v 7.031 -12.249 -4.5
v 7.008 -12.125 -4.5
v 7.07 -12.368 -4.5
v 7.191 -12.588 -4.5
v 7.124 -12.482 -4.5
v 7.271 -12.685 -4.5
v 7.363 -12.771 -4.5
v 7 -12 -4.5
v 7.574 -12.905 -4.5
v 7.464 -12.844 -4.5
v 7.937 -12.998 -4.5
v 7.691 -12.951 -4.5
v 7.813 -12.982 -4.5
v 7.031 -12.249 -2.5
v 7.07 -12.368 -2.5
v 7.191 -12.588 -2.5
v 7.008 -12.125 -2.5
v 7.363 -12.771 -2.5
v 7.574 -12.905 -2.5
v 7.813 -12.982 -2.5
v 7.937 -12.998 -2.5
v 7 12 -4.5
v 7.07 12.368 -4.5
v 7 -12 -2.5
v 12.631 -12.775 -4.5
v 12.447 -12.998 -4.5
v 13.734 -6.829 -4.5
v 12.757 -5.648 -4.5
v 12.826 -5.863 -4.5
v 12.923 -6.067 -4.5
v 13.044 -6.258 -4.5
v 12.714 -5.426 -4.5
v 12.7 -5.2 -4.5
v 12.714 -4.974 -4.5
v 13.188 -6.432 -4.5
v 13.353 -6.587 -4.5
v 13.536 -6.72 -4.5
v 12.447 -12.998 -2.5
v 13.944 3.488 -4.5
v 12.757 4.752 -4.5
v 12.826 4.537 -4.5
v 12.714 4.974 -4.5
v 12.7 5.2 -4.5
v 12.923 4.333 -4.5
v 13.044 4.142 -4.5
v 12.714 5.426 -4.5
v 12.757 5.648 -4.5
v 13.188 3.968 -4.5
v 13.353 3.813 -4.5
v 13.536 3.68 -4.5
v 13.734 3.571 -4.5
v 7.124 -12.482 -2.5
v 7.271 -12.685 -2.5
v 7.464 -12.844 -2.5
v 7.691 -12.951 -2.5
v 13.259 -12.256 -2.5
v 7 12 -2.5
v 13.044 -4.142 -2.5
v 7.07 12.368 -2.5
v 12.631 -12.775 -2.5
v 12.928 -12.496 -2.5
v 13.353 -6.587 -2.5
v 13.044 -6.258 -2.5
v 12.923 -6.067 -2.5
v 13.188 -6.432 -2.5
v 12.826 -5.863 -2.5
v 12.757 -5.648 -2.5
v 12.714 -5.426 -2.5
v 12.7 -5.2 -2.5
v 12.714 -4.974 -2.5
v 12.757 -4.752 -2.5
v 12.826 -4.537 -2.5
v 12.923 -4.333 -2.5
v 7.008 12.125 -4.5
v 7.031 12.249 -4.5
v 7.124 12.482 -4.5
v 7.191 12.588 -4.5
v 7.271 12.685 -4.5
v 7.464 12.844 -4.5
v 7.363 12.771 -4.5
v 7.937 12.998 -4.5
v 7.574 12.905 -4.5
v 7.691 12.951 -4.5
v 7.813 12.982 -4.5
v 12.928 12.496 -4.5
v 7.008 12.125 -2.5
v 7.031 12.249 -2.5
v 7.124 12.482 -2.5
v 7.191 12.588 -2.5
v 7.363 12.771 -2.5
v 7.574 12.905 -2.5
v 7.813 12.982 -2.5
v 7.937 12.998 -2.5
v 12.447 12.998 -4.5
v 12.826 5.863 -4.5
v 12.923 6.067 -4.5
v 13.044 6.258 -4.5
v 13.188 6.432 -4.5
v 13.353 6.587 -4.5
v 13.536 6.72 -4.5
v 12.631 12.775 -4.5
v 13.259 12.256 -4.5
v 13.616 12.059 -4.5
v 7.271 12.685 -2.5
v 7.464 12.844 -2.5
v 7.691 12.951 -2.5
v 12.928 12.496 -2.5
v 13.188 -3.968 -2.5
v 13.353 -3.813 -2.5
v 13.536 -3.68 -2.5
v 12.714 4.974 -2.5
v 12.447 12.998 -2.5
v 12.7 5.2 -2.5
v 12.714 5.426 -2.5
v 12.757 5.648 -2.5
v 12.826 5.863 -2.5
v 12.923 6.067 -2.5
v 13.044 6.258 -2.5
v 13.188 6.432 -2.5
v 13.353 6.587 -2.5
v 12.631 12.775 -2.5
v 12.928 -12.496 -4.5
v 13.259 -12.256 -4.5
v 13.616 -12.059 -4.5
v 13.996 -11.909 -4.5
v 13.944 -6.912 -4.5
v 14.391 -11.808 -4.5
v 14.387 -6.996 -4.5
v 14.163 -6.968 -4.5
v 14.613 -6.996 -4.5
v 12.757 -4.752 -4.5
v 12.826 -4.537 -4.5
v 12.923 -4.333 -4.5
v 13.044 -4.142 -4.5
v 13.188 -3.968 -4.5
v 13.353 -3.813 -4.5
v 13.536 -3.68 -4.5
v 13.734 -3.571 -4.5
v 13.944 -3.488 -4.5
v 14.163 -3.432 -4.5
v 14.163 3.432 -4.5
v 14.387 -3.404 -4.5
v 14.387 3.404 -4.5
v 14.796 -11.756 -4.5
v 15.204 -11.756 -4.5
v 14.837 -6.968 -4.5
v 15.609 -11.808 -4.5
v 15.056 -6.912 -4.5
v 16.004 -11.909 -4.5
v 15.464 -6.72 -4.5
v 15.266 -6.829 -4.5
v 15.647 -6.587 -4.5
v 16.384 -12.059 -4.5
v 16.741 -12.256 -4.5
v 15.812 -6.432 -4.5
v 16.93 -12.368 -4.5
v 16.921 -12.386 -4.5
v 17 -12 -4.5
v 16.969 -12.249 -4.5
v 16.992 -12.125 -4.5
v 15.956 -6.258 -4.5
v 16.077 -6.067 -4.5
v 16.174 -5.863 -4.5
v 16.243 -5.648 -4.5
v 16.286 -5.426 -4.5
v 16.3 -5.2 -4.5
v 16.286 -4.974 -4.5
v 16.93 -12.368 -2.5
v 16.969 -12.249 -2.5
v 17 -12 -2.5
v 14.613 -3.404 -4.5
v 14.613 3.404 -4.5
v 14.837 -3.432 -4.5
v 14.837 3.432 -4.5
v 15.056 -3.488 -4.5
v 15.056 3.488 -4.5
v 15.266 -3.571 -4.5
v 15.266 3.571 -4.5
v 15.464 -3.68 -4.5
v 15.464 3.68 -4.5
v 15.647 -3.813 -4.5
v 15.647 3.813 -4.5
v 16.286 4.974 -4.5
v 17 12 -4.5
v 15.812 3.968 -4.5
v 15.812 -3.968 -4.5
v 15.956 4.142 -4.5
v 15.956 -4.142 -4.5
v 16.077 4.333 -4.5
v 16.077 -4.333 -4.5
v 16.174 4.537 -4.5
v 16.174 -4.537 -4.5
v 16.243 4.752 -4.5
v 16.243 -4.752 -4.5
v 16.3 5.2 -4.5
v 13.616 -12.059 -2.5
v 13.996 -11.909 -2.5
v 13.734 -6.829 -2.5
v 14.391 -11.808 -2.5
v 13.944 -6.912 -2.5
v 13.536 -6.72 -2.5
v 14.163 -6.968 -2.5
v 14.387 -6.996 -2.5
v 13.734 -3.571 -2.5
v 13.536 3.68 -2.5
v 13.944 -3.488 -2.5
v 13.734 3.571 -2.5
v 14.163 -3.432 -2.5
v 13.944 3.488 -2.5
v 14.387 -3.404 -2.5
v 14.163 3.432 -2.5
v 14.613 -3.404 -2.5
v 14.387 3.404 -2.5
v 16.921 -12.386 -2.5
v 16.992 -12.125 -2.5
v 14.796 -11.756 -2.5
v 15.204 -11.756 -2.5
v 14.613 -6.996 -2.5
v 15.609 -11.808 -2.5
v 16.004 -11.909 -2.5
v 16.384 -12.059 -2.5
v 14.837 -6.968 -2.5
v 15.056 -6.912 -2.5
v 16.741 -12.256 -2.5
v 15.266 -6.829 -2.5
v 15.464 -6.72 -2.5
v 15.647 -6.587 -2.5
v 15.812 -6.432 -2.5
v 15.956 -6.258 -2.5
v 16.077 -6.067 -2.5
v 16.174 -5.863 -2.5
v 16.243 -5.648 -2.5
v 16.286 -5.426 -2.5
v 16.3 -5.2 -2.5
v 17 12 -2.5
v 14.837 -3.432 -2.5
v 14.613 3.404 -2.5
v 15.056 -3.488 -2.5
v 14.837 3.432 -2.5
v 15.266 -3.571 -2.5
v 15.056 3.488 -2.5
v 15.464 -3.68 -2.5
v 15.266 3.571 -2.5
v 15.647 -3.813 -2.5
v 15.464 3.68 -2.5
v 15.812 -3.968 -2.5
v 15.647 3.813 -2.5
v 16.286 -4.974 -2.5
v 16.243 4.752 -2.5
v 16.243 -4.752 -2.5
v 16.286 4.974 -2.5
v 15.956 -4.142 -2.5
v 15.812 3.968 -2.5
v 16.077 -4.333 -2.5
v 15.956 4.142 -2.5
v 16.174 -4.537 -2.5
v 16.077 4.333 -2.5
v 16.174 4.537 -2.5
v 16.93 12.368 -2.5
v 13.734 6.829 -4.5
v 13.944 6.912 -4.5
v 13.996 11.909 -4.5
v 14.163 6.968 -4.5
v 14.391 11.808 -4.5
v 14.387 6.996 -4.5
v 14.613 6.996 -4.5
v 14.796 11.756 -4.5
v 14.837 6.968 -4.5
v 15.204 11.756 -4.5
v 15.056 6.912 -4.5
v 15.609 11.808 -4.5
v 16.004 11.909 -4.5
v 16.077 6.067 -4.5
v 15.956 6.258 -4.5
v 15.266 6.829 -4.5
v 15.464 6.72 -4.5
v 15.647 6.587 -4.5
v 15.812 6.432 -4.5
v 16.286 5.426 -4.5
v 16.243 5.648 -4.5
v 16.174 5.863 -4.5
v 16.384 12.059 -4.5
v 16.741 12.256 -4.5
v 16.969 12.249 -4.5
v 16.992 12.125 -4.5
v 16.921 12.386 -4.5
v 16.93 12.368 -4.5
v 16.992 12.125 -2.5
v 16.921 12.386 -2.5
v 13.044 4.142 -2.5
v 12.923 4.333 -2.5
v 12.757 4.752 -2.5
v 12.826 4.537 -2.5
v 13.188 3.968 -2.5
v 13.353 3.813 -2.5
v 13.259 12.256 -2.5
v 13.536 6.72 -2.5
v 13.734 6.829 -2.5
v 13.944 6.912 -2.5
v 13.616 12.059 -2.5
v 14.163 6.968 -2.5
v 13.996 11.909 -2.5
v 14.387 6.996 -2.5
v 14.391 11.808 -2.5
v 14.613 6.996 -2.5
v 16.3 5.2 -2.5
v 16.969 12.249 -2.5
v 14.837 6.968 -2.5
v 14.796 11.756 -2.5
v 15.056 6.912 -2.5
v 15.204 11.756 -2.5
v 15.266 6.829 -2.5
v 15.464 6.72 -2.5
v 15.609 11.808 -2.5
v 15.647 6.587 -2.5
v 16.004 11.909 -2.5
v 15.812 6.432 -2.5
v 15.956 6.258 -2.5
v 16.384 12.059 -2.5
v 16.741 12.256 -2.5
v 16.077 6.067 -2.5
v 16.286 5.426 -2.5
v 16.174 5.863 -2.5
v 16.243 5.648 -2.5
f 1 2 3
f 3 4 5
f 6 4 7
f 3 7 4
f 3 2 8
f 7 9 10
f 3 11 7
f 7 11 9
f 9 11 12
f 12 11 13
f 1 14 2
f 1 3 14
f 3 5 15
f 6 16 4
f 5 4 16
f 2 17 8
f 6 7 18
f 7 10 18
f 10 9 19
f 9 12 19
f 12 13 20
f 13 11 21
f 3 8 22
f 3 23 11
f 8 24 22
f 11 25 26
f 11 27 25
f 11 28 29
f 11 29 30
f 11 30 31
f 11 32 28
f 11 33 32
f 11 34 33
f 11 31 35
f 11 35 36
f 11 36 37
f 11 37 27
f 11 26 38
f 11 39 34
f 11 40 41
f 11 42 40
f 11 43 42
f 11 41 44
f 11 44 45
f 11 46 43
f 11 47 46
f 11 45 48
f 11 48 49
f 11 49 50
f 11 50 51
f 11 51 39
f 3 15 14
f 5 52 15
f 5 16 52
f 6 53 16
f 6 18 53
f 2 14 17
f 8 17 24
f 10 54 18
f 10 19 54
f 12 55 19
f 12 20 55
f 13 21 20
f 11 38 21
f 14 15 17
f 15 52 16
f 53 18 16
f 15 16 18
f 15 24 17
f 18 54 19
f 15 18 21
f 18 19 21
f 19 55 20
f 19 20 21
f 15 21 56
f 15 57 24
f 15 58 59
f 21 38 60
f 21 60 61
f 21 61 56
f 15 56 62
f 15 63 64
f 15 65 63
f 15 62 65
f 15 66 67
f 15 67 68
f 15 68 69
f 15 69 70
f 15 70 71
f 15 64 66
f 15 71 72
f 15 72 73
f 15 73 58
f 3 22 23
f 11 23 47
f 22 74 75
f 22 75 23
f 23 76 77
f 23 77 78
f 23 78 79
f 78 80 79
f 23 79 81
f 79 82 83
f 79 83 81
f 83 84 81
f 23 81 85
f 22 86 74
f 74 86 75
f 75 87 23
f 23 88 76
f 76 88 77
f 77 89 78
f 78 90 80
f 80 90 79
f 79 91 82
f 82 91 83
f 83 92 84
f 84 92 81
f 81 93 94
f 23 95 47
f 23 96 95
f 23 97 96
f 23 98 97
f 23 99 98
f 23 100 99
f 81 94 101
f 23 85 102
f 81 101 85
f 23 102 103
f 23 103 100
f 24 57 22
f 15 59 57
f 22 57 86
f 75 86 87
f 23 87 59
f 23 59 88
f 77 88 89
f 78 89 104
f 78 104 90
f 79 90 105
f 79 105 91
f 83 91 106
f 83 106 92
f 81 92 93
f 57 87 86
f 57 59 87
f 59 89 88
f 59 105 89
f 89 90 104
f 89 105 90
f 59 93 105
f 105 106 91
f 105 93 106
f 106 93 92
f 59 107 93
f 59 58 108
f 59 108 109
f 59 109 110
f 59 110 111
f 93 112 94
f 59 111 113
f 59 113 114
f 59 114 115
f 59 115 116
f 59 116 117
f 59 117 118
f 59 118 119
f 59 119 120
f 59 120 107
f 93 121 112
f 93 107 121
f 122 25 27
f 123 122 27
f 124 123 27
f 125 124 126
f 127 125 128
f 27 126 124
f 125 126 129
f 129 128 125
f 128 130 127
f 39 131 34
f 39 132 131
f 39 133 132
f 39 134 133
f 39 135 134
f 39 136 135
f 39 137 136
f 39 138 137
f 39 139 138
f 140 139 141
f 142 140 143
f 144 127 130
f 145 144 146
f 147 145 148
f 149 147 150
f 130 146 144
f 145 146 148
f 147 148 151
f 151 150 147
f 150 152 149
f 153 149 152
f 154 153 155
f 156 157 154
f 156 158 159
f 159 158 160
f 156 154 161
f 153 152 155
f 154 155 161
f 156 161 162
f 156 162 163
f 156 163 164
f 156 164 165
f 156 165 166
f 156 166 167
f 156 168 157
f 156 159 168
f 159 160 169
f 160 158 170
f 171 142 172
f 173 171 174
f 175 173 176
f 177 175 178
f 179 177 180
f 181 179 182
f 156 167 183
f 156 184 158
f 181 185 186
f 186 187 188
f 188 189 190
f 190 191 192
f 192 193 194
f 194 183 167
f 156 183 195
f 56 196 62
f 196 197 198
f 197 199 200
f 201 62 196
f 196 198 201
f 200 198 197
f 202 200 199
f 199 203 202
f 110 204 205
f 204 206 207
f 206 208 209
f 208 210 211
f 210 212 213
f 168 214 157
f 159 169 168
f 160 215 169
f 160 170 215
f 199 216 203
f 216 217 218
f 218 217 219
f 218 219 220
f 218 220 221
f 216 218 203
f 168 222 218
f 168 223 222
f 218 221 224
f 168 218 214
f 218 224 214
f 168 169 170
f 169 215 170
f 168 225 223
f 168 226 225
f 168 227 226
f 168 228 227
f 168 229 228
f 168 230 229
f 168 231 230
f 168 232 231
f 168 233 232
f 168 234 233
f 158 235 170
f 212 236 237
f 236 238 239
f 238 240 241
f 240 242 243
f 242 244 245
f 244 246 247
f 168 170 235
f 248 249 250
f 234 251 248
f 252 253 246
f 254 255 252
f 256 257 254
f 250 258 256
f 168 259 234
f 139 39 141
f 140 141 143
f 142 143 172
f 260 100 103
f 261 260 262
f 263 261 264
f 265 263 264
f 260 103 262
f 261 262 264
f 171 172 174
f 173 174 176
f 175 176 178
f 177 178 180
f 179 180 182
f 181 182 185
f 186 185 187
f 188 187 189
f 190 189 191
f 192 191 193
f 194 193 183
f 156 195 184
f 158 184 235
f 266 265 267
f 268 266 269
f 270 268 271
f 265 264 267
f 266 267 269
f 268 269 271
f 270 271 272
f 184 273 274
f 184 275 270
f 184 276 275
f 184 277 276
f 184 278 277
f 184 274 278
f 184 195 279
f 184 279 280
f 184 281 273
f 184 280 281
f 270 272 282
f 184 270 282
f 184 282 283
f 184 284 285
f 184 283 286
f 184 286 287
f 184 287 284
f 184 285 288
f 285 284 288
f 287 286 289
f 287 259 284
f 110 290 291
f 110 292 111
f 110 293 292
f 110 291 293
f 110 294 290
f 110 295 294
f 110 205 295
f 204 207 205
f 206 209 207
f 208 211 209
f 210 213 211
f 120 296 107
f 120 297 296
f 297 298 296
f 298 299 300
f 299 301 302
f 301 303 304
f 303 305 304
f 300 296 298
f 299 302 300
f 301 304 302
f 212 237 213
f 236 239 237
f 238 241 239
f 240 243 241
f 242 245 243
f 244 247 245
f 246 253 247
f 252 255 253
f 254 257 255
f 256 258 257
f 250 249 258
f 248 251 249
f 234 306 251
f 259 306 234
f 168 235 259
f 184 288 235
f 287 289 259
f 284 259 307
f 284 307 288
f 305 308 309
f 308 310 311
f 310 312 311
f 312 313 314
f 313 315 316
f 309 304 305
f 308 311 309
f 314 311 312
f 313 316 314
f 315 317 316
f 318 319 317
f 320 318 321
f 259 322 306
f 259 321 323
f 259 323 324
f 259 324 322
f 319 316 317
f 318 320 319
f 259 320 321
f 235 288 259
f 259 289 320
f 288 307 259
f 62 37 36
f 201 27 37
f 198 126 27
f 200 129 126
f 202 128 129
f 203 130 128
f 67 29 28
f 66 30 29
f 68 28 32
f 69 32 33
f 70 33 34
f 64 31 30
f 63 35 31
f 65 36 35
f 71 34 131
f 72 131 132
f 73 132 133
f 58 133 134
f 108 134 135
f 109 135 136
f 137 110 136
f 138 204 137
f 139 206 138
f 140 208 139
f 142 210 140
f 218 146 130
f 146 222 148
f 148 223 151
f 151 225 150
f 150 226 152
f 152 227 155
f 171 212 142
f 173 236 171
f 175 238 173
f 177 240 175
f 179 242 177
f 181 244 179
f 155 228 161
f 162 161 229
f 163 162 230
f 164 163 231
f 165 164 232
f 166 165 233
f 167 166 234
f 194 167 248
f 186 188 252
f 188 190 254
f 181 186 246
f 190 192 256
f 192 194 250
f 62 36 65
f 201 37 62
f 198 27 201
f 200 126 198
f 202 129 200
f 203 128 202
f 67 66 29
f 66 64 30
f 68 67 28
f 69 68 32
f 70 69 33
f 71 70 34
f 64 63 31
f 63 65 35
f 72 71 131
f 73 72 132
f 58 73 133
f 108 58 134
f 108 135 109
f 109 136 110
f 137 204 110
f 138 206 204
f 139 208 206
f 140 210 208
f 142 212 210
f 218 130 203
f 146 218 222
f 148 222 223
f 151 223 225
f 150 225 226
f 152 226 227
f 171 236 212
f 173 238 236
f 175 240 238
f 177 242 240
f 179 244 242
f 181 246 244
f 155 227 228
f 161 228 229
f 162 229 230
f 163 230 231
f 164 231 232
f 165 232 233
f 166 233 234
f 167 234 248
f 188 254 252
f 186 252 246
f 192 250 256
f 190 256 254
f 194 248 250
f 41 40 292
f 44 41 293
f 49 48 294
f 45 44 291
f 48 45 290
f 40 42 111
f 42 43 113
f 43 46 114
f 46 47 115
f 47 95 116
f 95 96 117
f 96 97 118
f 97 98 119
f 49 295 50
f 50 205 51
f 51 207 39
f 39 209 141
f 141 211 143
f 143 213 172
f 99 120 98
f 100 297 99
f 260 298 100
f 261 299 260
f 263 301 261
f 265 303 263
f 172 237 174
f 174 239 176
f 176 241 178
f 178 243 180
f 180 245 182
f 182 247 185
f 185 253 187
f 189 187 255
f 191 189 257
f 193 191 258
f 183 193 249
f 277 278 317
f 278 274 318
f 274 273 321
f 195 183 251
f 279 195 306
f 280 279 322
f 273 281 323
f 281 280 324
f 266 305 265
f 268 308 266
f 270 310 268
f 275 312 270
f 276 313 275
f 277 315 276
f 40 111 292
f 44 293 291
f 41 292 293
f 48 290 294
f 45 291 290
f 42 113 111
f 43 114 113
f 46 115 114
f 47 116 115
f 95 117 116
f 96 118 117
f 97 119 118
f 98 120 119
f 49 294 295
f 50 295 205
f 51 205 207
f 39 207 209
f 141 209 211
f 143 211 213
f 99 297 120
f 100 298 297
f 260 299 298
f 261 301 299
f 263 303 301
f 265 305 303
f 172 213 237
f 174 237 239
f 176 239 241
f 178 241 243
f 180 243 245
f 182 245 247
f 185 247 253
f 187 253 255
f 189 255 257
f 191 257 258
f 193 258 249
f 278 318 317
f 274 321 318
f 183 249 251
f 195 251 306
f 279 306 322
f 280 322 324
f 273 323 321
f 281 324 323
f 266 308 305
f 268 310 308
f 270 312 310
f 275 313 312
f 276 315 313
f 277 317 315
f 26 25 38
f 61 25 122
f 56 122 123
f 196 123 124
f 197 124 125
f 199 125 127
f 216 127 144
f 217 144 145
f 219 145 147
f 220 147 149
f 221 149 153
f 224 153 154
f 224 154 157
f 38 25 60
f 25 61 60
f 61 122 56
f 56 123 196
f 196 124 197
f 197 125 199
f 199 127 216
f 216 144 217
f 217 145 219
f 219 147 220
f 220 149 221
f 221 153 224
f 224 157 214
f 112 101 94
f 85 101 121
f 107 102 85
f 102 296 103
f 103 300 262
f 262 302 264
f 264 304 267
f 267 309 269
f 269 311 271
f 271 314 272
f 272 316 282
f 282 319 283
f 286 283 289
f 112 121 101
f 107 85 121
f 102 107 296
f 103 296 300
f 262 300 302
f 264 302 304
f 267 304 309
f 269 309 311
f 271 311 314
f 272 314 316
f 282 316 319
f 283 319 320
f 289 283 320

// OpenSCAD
$fn = 50;

difference() {
	union() {
		translate(v = [12, 0, -4.5]) {
			hull() {
				translate(v = [-4.0, 12.0, 0]) {
					cylinder(h = 2, r = 1);
				}
				translate(v = [4.0, 12.0, 0]) {
					cylinder(h = 2, r = 1);
				}
				translate(v = [-4.0, -12.0, 0]) {
					cylinder(h = 2, r = 1);
				}
				translate(v = [4.0, -12.0, 0]) {
					cylinder(h = 2, r = 1);
				}
			}
		}
	}
	union() {
		translate(v = [14.5, -5.2, -5.5]) {
			cylinder(h = 4, r = 1.8);
		}
		translate(v = [14.5, 5.2, -5.5]) {
			cylinder(h = 4, r = 1.8);
		}
		translate(v = [-30, -15, -5.5]) {
			cylinder(h = 4, r = 3.25);
		}
		translate(v = [-30, 15, -5.5]) {
			cylinder(h = 4, r = 3.25);
		}
		translate(v = [15, -15, -5.5]) {
			cylinder(h = 4, r = 3.25);
		}
		translate(v = [15, 15, -5.5]) {
			cylinder(h = 4, r = 3.25);
		}
	}
}
